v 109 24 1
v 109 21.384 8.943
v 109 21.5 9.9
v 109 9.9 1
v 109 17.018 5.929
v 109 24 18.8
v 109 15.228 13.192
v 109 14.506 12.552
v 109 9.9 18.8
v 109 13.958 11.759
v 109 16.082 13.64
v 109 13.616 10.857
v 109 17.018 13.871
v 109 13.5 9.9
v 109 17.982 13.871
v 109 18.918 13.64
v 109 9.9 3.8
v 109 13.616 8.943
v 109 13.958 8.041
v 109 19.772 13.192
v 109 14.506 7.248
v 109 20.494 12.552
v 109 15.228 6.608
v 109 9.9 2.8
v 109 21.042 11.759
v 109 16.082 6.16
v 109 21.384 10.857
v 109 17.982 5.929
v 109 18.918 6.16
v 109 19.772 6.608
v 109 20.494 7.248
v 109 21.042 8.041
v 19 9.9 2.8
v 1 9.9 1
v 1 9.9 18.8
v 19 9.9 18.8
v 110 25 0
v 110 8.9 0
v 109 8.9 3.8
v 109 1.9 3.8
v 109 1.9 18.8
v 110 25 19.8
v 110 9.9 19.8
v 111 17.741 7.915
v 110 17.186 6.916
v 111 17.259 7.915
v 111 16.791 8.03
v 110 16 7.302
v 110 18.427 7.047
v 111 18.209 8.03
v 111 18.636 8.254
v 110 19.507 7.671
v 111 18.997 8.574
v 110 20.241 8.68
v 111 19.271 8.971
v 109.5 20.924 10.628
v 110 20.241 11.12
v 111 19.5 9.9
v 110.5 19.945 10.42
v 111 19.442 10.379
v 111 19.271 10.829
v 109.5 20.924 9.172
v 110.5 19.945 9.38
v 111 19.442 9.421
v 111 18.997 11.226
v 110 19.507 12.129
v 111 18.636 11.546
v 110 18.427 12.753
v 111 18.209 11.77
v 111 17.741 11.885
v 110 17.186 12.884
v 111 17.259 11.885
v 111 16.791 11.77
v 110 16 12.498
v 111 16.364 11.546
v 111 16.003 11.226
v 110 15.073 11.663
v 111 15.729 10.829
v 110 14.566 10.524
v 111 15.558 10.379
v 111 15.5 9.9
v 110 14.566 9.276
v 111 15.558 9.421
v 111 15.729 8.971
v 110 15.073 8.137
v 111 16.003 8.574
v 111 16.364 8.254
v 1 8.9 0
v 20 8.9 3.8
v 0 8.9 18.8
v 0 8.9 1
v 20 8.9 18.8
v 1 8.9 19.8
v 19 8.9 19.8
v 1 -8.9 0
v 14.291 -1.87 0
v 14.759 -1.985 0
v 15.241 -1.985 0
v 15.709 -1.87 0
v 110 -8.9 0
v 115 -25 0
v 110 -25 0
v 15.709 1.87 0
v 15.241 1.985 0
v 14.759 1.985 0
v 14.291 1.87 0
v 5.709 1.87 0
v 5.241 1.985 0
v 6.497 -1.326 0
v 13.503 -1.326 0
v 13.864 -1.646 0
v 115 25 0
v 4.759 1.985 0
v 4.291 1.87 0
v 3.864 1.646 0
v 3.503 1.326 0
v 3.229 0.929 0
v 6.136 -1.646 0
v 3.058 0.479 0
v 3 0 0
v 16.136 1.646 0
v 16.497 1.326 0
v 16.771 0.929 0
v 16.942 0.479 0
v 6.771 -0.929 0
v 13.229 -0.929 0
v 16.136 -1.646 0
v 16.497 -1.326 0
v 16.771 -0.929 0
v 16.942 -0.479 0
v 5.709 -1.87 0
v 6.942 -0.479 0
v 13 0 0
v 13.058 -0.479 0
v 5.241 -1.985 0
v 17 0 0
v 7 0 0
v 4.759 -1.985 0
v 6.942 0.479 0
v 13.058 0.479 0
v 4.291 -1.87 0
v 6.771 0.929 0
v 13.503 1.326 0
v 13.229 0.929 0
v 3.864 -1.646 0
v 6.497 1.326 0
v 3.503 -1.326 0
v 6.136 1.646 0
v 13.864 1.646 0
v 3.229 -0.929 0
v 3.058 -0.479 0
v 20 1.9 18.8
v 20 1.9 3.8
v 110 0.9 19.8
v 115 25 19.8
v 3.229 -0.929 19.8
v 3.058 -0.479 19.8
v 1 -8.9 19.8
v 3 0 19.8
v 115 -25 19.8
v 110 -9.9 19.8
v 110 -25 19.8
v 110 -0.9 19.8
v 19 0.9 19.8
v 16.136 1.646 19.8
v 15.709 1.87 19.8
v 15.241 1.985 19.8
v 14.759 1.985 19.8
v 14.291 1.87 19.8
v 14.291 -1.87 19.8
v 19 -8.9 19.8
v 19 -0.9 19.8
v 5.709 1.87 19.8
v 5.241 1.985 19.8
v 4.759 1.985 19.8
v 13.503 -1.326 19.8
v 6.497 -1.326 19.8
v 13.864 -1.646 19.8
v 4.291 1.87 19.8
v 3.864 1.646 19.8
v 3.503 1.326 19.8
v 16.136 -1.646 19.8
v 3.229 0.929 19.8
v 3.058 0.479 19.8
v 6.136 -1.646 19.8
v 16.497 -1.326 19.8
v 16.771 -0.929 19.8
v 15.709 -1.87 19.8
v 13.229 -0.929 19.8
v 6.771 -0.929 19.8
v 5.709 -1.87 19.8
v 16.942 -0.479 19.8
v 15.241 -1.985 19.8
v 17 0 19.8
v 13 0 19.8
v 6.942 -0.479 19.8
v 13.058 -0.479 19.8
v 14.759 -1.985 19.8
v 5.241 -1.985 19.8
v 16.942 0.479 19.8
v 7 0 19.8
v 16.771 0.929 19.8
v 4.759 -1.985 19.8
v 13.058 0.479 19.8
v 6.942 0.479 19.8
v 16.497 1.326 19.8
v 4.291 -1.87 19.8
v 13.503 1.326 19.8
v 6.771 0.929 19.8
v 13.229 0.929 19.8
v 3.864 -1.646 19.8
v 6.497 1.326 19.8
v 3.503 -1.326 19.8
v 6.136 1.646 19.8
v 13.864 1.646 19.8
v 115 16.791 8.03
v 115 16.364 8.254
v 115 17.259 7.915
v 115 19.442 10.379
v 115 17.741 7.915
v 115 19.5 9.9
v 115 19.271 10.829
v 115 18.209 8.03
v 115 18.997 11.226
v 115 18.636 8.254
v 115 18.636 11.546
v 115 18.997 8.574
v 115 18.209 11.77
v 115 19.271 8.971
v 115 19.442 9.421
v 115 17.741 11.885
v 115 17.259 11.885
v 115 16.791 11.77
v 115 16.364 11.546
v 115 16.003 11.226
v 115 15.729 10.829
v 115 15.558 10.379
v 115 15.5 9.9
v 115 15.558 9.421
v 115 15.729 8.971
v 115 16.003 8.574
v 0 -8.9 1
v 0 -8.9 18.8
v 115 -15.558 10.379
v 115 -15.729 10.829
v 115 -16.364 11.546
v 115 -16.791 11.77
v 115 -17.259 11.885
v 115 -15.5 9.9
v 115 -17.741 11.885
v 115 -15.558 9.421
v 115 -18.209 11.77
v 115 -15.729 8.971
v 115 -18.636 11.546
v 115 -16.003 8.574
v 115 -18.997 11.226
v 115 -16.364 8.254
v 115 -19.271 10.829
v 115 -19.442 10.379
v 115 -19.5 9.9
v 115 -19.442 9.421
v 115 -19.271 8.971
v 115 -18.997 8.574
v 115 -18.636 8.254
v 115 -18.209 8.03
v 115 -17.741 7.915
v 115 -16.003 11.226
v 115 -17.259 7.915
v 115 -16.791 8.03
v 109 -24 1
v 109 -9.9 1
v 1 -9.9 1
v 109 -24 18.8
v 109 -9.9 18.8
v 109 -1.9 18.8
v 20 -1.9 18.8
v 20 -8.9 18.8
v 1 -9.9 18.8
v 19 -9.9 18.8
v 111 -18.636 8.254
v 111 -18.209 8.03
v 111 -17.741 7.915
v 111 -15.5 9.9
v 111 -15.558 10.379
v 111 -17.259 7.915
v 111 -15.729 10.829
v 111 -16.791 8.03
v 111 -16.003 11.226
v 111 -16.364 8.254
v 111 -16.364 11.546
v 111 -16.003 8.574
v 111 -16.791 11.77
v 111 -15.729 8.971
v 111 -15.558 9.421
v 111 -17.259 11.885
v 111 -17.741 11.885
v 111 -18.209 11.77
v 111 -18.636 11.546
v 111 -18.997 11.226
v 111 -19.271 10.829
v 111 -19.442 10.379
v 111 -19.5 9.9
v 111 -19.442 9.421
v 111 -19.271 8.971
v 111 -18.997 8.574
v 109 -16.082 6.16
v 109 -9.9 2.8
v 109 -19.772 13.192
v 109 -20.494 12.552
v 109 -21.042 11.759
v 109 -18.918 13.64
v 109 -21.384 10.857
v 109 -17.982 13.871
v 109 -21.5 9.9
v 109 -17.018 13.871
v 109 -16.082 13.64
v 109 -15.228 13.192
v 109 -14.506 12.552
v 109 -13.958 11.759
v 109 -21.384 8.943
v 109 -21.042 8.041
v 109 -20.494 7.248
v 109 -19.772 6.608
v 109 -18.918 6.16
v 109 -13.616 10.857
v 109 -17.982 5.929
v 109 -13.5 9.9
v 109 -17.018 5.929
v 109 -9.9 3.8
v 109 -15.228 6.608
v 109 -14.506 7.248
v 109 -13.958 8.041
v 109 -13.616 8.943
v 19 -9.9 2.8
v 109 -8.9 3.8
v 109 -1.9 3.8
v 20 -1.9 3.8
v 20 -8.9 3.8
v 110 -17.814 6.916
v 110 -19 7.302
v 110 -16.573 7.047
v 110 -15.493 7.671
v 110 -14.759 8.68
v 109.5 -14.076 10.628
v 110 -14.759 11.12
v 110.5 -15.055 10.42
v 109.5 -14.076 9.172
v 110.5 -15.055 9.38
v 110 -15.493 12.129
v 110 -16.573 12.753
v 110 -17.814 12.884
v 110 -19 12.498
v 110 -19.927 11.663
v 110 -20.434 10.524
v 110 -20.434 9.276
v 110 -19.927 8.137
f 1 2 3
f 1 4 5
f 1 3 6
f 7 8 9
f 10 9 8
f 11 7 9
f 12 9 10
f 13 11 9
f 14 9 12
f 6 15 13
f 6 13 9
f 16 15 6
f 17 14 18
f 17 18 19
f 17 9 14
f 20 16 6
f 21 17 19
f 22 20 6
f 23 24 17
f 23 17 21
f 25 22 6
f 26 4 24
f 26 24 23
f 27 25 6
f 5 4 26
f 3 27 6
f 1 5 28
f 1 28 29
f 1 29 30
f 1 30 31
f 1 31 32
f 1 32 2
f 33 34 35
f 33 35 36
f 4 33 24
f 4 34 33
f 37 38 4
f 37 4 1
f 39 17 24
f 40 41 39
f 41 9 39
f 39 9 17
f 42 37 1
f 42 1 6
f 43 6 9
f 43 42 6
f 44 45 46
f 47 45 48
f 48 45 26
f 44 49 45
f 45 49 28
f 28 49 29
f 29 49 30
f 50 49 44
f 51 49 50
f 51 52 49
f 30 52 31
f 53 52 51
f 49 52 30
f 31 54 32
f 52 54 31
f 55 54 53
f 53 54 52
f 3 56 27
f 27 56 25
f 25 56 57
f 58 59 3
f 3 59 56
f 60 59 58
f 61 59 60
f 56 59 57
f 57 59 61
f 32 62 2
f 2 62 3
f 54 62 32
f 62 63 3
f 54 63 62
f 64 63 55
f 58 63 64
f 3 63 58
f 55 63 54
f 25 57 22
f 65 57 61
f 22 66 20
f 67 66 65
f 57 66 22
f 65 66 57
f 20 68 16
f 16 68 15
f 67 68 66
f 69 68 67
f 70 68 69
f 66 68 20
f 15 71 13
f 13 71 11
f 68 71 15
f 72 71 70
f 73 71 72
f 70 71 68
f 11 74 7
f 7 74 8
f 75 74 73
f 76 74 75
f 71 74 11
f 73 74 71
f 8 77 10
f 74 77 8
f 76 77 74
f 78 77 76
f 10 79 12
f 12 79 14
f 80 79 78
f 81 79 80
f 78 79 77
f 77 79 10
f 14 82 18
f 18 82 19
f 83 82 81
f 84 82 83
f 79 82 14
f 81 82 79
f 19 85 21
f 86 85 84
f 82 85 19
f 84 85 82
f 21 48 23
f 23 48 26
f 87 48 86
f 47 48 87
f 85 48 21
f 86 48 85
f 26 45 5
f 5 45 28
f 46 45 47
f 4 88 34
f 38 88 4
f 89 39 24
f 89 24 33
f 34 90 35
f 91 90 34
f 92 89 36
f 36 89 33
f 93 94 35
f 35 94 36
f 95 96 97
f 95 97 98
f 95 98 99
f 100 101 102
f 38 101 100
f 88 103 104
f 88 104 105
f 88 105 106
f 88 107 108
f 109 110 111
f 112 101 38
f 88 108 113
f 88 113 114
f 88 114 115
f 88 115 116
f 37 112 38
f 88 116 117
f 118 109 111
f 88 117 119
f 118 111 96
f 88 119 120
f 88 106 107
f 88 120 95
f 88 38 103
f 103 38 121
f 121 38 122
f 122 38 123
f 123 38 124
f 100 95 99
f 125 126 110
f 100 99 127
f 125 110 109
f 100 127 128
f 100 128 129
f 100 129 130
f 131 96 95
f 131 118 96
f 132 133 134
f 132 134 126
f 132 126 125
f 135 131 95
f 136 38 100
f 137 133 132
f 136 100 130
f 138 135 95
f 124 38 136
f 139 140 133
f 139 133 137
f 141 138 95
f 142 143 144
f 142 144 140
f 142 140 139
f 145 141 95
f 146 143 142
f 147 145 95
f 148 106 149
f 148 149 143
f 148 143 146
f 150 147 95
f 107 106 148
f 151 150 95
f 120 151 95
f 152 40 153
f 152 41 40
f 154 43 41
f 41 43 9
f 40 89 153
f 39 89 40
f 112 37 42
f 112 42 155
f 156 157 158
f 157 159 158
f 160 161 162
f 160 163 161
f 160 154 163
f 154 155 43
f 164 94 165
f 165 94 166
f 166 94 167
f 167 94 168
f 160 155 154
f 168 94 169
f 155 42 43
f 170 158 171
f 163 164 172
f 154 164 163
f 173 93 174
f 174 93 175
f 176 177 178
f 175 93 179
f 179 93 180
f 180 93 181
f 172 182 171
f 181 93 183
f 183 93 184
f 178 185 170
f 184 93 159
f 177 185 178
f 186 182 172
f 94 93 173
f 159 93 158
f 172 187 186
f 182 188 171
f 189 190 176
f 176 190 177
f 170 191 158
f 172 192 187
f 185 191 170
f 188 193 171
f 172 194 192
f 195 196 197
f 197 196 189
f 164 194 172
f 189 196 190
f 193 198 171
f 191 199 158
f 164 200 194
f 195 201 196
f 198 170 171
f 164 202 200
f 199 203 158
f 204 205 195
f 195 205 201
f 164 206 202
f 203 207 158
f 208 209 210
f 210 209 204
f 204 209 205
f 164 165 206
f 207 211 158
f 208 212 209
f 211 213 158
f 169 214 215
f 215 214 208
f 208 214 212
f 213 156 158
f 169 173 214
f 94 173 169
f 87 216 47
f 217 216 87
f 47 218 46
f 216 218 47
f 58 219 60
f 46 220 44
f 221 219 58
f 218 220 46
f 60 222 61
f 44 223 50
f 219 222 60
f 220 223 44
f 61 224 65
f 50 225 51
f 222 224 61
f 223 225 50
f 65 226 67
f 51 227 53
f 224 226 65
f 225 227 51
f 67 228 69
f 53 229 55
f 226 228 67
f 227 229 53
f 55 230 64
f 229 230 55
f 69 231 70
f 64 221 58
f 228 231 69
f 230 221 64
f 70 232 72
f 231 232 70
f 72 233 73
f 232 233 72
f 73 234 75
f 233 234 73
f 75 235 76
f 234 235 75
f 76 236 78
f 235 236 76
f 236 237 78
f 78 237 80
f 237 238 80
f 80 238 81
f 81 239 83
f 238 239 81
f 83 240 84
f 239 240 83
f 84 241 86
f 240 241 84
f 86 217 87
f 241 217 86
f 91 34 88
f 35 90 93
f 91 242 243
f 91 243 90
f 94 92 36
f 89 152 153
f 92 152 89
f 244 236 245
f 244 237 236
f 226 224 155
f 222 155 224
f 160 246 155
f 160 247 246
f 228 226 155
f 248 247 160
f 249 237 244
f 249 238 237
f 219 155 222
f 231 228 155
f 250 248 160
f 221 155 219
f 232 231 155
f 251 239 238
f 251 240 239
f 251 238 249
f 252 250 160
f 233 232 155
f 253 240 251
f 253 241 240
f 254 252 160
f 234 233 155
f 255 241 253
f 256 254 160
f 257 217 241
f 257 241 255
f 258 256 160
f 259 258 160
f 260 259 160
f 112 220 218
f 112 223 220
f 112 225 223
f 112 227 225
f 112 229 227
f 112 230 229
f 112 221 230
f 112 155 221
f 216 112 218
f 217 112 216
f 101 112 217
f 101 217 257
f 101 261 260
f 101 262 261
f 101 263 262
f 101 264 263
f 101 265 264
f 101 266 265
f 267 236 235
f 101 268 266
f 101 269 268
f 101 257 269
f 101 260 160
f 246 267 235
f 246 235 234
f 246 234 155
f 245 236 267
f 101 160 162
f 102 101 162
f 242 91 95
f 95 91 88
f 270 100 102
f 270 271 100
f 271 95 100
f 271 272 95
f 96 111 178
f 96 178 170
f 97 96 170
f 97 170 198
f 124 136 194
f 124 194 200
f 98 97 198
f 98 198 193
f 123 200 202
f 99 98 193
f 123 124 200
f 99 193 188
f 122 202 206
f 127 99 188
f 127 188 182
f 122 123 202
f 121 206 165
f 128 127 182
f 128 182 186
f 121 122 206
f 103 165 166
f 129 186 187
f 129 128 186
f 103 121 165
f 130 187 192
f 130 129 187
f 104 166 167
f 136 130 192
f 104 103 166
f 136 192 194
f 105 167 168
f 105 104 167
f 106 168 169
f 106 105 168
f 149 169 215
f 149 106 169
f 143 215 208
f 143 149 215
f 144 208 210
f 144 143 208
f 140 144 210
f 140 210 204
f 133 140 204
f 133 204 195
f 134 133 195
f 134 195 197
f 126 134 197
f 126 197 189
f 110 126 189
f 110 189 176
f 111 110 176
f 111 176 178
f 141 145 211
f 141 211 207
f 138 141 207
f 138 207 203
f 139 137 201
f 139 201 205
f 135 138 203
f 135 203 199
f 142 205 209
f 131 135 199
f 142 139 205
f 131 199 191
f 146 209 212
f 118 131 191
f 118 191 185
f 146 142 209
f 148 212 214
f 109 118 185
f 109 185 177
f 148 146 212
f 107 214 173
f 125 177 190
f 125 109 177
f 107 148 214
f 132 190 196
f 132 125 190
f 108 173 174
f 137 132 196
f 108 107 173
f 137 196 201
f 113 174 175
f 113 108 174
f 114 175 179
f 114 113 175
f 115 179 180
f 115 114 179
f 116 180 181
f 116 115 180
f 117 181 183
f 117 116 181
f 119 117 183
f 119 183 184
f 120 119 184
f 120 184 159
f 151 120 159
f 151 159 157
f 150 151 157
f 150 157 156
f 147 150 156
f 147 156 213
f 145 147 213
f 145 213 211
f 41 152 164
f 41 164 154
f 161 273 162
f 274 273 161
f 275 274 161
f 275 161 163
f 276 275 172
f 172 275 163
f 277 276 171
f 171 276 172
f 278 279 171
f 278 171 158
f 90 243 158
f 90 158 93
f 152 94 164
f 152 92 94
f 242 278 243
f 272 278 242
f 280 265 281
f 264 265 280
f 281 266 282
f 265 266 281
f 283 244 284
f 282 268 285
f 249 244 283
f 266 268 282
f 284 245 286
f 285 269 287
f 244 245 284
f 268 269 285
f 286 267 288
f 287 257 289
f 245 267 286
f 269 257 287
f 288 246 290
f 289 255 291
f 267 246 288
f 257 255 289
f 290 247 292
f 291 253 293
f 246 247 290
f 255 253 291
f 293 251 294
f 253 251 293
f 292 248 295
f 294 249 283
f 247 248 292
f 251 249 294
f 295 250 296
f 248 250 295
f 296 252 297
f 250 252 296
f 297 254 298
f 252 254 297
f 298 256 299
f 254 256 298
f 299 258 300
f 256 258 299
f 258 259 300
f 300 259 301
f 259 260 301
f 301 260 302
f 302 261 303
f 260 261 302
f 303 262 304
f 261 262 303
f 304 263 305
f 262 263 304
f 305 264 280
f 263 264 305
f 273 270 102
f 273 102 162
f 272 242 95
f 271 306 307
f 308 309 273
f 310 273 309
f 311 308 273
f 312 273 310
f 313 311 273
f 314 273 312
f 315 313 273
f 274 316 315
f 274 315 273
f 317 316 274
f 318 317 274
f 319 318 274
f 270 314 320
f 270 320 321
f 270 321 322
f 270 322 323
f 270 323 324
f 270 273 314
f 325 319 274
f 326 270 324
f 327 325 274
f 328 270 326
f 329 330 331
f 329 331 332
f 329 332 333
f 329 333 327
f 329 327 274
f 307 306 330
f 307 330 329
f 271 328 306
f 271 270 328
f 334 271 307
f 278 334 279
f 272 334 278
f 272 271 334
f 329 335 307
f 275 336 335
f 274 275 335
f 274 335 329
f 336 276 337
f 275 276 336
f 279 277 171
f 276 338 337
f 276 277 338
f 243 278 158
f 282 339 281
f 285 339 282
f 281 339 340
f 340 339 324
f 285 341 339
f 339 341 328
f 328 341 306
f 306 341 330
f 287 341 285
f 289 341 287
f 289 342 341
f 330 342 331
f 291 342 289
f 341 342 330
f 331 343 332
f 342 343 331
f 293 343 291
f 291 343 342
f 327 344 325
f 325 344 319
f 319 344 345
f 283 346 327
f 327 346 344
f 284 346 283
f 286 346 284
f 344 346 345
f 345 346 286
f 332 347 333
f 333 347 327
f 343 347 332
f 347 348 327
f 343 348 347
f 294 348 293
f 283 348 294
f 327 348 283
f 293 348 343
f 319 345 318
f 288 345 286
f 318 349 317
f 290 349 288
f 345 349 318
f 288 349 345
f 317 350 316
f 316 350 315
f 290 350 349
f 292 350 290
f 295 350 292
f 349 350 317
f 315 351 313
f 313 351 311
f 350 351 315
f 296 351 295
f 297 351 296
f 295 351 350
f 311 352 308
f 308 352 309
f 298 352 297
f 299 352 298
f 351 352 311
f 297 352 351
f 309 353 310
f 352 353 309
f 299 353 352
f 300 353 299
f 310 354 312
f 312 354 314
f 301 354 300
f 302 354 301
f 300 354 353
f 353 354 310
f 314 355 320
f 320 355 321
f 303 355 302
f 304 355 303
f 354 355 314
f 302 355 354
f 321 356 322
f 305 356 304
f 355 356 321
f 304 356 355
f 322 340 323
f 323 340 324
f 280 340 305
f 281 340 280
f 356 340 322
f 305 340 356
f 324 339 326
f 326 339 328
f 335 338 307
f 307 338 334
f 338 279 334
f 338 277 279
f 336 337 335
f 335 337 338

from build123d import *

# Parameters (mm, degrees)
SKETCH_R        = 2
PAD_DEPTH       = 19.8
SKETCH001_W     = 89
SKETCH001_H     = 8
POCKET_DEPTH    = 16
SKETCH002_R     = 2
POCKET001_DEPTH = 115.001
CHAMFER_SIZE    = 2
CHAMFER001_SIZE = 1


with BuildPart() as part:
    # Sketch → Pad (new body)
    with BuildSketch(Plane.XY):
        Polygon((0, 9.9), (109, 9.9), (109, 25), (115, 25), (115, -25), (109, -25), (109, -9.9), (0, -9.9), align=None)
        with Locations((5, 0)):
            Circle(SKETCH_R, mode=Mode.SUBTRACT)
        with Locations((15, 0)):
            Circle(SKETCH_R, mode=Mode.SUBTRACT)
    extrude(amount=PAD_DEPTH)

    # Sketch001 (on Face12 of Pad) → Pocket (cut)
    with BuildSketch(Plane.XY.offset(19.8)):
        with Locations((64.5, -5.9)):
            Rectangle(SKETCH001_W, SKETCH001_H)
        with Locations((64.5, 5.9)):
            Rectangle(SKETCH001_W, SKETCH001_H)
    extrude(amount=-POCKET_DEPTH, mode=Mode.SUBTRACT)

    # Sketch002 (on Face9 of Pocket) → Pocket001 (cut, through all)
    with BuildSketch(Plane.YZ.offset(115)):
        with Locations((-17.5, 9.9)):
            Circle(SKETCH002_R)
        with Locations((17.5, 9.9)):
            Circle(SKETCH002_R)
    extrude(amount=-POCKET001_DEPTH, mode=Mode.SUBTRACT)

    # Chamfer
    chamfer_edges = [part.edges().sort_by_distance(p)[0] for p in [
        (109, -19.5, 9.9),
        (109, 15.5, 9.9),
    ]]
    chamfer(chamfer_edges, length=CHAMFER_SIZE)

    # Chamfer001
    chamfer001_edges = [part.edges().sort_by_distance(p)[0] for p in [
        (0, -9.9, 9.9),
        (0, 9.9, 9.9),
        (0, 0, 19.8),
        (0, 0, 0),
        (54.5, 9.9, 0),
        (54.5, -9.9, 0),
        (64.5, 9.9, 3.8),
        (64.5, -9.9, 3.8),
        (20, -9.9, 11.8),
        (10, -9.9, 19.8),
        (20, -5.9, 19.8),
        (20, 5.9, 19.8),
        (10, 9.9, 19.8),
        (20, 9.9, 11.8),
        (64.5, -1.9, 19.8),
        (64.5, 1.9, 19.8),
        (109, -17.45, 0),
        (109, 17.45, 0),
        (109, -17.45, 19.8),
        (109, 17.45, 19.8),
        (109, -25, 9.9),
        (109, 25, 9.9),
    ]]
    chamfer(chamfer001_edges, length=CHAMFER001_SIZE)


solid = part.part
